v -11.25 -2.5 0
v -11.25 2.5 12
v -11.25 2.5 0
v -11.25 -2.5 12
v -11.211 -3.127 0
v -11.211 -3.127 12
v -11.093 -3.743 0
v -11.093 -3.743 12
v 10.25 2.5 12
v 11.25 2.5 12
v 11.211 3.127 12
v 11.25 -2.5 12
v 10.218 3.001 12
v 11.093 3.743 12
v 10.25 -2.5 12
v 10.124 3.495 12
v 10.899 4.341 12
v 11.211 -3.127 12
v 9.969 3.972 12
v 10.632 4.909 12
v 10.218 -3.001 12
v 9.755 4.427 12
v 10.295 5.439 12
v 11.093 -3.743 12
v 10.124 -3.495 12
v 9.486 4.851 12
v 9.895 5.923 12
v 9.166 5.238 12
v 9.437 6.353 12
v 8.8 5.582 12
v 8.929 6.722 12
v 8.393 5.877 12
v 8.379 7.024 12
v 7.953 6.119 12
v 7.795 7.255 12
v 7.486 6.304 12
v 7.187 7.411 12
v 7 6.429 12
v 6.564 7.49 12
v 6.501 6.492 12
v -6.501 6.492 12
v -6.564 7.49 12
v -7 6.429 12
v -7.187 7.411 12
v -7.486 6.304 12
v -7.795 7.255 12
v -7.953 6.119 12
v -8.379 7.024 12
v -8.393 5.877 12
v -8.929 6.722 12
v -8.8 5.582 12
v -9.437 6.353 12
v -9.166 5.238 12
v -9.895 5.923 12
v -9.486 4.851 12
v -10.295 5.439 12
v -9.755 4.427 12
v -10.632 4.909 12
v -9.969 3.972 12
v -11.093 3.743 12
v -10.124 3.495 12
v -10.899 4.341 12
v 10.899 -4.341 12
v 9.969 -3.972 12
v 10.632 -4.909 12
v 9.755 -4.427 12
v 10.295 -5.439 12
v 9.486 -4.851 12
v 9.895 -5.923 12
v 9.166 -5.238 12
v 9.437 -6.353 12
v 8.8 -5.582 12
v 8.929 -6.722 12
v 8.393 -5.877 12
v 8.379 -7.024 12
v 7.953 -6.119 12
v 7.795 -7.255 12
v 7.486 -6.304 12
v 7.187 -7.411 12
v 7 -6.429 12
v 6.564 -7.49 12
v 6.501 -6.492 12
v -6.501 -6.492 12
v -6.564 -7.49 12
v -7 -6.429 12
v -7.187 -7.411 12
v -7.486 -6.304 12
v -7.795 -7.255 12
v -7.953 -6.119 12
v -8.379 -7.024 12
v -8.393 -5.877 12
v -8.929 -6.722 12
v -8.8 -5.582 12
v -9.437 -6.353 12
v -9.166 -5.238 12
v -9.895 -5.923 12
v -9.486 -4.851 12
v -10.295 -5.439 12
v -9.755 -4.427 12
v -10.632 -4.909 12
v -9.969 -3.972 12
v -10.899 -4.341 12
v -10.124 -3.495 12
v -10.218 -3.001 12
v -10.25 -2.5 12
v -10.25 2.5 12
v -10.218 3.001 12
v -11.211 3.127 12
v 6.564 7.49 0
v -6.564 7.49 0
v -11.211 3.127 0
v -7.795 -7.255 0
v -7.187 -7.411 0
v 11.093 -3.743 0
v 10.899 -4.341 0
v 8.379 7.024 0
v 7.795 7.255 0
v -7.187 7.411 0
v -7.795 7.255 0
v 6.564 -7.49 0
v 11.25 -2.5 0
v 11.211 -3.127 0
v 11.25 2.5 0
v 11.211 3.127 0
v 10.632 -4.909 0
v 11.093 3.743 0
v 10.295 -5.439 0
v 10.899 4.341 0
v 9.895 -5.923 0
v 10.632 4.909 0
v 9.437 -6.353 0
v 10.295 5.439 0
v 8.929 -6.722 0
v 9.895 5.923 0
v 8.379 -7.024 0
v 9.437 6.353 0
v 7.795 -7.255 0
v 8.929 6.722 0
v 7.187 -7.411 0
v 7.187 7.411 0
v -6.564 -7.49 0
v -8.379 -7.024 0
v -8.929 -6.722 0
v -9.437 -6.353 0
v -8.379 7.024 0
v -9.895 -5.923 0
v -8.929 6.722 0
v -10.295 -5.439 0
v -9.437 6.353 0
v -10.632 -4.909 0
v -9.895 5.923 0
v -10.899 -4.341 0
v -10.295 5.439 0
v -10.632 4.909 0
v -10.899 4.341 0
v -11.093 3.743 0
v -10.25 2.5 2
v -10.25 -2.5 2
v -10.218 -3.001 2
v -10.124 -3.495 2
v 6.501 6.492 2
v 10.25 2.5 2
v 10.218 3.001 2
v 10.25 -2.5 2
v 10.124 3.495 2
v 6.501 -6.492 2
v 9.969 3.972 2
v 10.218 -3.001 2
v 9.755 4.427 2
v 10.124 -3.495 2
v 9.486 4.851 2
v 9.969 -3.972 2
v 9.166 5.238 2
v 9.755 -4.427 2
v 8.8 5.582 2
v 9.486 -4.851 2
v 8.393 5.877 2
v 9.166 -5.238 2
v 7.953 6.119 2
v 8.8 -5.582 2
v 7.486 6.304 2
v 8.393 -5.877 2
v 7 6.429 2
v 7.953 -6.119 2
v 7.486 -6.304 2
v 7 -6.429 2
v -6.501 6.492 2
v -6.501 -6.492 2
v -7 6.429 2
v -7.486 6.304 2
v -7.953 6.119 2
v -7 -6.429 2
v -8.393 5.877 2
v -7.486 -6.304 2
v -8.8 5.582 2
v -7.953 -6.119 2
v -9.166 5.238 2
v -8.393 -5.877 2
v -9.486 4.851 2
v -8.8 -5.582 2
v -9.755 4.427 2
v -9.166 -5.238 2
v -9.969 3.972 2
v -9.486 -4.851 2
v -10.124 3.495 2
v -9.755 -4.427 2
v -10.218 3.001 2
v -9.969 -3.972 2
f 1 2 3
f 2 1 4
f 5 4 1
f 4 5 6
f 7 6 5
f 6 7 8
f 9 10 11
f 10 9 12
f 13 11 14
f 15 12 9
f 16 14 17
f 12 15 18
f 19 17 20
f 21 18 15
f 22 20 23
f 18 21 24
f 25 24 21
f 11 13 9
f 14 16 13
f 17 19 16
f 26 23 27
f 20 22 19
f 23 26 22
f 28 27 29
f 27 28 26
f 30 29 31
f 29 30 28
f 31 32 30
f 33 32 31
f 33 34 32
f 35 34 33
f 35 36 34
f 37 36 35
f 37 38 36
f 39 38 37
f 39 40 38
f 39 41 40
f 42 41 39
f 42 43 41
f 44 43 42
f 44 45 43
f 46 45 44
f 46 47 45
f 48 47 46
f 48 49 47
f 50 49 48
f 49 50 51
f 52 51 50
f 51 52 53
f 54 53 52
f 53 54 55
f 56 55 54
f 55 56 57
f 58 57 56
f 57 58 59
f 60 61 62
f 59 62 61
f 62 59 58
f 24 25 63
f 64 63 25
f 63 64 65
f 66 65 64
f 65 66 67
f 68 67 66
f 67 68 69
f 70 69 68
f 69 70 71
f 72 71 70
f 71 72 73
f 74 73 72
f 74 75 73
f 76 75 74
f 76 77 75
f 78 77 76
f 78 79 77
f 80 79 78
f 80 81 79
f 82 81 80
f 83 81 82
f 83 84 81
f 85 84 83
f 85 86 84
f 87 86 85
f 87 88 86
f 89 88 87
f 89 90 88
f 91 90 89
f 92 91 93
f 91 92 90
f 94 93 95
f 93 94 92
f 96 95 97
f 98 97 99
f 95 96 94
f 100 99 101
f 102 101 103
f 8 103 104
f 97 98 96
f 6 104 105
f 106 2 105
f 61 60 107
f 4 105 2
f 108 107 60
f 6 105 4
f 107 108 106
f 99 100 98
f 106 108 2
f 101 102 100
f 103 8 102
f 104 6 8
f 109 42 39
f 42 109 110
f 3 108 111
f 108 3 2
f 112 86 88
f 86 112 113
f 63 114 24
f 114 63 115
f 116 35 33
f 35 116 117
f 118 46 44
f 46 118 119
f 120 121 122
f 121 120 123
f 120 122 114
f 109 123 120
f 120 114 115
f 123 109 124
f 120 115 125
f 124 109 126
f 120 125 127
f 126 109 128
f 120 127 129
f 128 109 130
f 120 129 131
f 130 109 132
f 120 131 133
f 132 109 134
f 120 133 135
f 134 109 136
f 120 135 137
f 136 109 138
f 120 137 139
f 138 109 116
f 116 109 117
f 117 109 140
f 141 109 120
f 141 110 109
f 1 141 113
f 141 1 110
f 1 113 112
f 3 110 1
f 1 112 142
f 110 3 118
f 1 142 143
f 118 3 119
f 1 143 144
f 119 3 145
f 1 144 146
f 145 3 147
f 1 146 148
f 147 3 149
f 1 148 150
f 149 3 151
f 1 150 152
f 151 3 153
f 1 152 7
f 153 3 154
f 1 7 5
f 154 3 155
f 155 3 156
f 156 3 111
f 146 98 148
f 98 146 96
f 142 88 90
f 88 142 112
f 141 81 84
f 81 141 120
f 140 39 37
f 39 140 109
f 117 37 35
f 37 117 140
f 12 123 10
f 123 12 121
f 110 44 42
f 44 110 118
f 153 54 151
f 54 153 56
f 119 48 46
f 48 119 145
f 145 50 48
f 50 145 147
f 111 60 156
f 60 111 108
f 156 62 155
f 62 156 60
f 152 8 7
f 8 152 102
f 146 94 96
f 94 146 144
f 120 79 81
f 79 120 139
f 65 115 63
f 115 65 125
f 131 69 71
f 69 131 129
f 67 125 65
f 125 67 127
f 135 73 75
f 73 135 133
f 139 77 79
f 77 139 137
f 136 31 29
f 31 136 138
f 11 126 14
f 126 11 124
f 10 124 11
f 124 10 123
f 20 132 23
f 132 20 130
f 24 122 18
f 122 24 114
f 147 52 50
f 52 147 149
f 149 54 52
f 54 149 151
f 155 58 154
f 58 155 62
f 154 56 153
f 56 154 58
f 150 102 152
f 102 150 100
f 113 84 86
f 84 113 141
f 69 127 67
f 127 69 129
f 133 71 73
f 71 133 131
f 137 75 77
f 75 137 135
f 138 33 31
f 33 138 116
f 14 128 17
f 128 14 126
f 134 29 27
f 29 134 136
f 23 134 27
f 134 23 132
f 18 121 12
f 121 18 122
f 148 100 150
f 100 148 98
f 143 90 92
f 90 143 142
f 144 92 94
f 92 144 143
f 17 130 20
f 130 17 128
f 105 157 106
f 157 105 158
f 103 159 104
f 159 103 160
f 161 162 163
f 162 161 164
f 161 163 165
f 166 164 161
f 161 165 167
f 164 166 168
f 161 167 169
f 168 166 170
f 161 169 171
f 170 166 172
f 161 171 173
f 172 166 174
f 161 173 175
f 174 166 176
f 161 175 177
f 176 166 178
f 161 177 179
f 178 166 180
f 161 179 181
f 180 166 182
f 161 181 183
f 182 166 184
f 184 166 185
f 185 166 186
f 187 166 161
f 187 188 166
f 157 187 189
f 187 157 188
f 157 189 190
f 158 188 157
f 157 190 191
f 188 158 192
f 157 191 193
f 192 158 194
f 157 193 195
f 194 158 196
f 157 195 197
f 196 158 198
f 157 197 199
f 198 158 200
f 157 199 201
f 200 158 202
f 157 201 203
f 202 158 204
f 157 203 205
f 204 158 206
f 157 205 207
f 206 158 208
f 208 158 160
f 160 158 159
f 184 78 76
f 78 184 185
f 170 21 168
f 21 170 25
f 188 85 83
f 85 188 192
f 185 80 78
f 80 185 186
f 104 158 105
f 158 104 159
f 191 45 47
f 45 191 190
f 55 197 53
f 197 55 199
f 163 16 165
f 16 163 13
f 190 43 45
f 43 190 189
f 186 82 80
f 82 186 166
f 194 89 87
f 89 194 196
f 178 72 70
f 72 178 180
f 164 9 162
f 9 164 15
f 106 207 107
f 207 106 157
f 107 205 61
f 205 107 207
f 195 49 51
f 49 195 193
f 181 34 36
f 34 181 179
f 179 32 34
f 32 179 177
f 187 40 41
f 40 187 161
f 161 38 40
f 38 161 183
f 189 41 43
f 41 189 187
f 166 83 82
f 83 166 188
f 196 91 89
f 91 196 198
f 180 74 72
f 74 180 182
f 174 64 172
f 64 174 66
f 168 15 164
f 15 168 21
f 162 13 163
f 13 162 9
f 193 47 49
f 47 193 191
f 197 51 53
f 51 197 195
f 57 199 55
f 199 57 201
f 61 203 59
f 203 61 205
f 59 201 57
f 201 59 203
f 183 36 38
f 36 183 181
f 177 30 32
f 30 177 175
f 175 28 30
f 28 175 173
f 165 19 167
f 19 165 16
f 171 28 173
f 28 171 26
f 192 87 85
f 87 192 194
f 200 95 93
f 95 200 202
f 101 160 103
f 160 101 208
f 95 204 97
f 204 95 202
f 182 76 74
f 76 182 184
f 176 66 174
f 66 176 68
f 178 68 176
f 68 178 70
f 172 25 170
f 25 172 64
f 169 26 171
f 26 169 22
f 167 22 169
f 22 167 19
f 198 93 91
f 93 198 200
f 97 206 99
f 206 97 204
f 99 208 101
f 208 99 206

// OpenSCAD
$fn = 50;


difference() {
	union() {
		hull() {
			translate(v = [-6.2500000000, 2.5000000000, 0]) {
				cylinder(h = 12, r = 5);
			}
			translate(v = [6.2500000000, 2.5000000000, 0]) {
				cylinder(h = 12, r = 5);
			}
			translate(v = [-6.2500000000, -2.5000000000, 0]) {
				cylinder(h = 12, r = 5);
			}
			translate(v = [6.2500000000, -2.5000000000, 0]) {
				cylinder(h = 12, r = 5);
			}
		}
	}
	union() {
		translate(v = [0, 0, 2]) {
			hull() {
				translate(v = [-6.2500000000, 2.5000000000, 0]) {
					cylinder(h = 10, r = 4);
				}
				translate(v = [6.2500000000, 2.5000000000, 0]) {
					cylinder(h = 10, r = 4);
				}
				translate(v = [-6.2500000000, -2.5000000000, 0]) {
					cylinder(h = 10, r = 4);
				}
				translate(v = [6.2500000000, -2.5000000000, 0]) {
					cylinder(h = 10, r = 4);
				}
			}
		}
	}
}
